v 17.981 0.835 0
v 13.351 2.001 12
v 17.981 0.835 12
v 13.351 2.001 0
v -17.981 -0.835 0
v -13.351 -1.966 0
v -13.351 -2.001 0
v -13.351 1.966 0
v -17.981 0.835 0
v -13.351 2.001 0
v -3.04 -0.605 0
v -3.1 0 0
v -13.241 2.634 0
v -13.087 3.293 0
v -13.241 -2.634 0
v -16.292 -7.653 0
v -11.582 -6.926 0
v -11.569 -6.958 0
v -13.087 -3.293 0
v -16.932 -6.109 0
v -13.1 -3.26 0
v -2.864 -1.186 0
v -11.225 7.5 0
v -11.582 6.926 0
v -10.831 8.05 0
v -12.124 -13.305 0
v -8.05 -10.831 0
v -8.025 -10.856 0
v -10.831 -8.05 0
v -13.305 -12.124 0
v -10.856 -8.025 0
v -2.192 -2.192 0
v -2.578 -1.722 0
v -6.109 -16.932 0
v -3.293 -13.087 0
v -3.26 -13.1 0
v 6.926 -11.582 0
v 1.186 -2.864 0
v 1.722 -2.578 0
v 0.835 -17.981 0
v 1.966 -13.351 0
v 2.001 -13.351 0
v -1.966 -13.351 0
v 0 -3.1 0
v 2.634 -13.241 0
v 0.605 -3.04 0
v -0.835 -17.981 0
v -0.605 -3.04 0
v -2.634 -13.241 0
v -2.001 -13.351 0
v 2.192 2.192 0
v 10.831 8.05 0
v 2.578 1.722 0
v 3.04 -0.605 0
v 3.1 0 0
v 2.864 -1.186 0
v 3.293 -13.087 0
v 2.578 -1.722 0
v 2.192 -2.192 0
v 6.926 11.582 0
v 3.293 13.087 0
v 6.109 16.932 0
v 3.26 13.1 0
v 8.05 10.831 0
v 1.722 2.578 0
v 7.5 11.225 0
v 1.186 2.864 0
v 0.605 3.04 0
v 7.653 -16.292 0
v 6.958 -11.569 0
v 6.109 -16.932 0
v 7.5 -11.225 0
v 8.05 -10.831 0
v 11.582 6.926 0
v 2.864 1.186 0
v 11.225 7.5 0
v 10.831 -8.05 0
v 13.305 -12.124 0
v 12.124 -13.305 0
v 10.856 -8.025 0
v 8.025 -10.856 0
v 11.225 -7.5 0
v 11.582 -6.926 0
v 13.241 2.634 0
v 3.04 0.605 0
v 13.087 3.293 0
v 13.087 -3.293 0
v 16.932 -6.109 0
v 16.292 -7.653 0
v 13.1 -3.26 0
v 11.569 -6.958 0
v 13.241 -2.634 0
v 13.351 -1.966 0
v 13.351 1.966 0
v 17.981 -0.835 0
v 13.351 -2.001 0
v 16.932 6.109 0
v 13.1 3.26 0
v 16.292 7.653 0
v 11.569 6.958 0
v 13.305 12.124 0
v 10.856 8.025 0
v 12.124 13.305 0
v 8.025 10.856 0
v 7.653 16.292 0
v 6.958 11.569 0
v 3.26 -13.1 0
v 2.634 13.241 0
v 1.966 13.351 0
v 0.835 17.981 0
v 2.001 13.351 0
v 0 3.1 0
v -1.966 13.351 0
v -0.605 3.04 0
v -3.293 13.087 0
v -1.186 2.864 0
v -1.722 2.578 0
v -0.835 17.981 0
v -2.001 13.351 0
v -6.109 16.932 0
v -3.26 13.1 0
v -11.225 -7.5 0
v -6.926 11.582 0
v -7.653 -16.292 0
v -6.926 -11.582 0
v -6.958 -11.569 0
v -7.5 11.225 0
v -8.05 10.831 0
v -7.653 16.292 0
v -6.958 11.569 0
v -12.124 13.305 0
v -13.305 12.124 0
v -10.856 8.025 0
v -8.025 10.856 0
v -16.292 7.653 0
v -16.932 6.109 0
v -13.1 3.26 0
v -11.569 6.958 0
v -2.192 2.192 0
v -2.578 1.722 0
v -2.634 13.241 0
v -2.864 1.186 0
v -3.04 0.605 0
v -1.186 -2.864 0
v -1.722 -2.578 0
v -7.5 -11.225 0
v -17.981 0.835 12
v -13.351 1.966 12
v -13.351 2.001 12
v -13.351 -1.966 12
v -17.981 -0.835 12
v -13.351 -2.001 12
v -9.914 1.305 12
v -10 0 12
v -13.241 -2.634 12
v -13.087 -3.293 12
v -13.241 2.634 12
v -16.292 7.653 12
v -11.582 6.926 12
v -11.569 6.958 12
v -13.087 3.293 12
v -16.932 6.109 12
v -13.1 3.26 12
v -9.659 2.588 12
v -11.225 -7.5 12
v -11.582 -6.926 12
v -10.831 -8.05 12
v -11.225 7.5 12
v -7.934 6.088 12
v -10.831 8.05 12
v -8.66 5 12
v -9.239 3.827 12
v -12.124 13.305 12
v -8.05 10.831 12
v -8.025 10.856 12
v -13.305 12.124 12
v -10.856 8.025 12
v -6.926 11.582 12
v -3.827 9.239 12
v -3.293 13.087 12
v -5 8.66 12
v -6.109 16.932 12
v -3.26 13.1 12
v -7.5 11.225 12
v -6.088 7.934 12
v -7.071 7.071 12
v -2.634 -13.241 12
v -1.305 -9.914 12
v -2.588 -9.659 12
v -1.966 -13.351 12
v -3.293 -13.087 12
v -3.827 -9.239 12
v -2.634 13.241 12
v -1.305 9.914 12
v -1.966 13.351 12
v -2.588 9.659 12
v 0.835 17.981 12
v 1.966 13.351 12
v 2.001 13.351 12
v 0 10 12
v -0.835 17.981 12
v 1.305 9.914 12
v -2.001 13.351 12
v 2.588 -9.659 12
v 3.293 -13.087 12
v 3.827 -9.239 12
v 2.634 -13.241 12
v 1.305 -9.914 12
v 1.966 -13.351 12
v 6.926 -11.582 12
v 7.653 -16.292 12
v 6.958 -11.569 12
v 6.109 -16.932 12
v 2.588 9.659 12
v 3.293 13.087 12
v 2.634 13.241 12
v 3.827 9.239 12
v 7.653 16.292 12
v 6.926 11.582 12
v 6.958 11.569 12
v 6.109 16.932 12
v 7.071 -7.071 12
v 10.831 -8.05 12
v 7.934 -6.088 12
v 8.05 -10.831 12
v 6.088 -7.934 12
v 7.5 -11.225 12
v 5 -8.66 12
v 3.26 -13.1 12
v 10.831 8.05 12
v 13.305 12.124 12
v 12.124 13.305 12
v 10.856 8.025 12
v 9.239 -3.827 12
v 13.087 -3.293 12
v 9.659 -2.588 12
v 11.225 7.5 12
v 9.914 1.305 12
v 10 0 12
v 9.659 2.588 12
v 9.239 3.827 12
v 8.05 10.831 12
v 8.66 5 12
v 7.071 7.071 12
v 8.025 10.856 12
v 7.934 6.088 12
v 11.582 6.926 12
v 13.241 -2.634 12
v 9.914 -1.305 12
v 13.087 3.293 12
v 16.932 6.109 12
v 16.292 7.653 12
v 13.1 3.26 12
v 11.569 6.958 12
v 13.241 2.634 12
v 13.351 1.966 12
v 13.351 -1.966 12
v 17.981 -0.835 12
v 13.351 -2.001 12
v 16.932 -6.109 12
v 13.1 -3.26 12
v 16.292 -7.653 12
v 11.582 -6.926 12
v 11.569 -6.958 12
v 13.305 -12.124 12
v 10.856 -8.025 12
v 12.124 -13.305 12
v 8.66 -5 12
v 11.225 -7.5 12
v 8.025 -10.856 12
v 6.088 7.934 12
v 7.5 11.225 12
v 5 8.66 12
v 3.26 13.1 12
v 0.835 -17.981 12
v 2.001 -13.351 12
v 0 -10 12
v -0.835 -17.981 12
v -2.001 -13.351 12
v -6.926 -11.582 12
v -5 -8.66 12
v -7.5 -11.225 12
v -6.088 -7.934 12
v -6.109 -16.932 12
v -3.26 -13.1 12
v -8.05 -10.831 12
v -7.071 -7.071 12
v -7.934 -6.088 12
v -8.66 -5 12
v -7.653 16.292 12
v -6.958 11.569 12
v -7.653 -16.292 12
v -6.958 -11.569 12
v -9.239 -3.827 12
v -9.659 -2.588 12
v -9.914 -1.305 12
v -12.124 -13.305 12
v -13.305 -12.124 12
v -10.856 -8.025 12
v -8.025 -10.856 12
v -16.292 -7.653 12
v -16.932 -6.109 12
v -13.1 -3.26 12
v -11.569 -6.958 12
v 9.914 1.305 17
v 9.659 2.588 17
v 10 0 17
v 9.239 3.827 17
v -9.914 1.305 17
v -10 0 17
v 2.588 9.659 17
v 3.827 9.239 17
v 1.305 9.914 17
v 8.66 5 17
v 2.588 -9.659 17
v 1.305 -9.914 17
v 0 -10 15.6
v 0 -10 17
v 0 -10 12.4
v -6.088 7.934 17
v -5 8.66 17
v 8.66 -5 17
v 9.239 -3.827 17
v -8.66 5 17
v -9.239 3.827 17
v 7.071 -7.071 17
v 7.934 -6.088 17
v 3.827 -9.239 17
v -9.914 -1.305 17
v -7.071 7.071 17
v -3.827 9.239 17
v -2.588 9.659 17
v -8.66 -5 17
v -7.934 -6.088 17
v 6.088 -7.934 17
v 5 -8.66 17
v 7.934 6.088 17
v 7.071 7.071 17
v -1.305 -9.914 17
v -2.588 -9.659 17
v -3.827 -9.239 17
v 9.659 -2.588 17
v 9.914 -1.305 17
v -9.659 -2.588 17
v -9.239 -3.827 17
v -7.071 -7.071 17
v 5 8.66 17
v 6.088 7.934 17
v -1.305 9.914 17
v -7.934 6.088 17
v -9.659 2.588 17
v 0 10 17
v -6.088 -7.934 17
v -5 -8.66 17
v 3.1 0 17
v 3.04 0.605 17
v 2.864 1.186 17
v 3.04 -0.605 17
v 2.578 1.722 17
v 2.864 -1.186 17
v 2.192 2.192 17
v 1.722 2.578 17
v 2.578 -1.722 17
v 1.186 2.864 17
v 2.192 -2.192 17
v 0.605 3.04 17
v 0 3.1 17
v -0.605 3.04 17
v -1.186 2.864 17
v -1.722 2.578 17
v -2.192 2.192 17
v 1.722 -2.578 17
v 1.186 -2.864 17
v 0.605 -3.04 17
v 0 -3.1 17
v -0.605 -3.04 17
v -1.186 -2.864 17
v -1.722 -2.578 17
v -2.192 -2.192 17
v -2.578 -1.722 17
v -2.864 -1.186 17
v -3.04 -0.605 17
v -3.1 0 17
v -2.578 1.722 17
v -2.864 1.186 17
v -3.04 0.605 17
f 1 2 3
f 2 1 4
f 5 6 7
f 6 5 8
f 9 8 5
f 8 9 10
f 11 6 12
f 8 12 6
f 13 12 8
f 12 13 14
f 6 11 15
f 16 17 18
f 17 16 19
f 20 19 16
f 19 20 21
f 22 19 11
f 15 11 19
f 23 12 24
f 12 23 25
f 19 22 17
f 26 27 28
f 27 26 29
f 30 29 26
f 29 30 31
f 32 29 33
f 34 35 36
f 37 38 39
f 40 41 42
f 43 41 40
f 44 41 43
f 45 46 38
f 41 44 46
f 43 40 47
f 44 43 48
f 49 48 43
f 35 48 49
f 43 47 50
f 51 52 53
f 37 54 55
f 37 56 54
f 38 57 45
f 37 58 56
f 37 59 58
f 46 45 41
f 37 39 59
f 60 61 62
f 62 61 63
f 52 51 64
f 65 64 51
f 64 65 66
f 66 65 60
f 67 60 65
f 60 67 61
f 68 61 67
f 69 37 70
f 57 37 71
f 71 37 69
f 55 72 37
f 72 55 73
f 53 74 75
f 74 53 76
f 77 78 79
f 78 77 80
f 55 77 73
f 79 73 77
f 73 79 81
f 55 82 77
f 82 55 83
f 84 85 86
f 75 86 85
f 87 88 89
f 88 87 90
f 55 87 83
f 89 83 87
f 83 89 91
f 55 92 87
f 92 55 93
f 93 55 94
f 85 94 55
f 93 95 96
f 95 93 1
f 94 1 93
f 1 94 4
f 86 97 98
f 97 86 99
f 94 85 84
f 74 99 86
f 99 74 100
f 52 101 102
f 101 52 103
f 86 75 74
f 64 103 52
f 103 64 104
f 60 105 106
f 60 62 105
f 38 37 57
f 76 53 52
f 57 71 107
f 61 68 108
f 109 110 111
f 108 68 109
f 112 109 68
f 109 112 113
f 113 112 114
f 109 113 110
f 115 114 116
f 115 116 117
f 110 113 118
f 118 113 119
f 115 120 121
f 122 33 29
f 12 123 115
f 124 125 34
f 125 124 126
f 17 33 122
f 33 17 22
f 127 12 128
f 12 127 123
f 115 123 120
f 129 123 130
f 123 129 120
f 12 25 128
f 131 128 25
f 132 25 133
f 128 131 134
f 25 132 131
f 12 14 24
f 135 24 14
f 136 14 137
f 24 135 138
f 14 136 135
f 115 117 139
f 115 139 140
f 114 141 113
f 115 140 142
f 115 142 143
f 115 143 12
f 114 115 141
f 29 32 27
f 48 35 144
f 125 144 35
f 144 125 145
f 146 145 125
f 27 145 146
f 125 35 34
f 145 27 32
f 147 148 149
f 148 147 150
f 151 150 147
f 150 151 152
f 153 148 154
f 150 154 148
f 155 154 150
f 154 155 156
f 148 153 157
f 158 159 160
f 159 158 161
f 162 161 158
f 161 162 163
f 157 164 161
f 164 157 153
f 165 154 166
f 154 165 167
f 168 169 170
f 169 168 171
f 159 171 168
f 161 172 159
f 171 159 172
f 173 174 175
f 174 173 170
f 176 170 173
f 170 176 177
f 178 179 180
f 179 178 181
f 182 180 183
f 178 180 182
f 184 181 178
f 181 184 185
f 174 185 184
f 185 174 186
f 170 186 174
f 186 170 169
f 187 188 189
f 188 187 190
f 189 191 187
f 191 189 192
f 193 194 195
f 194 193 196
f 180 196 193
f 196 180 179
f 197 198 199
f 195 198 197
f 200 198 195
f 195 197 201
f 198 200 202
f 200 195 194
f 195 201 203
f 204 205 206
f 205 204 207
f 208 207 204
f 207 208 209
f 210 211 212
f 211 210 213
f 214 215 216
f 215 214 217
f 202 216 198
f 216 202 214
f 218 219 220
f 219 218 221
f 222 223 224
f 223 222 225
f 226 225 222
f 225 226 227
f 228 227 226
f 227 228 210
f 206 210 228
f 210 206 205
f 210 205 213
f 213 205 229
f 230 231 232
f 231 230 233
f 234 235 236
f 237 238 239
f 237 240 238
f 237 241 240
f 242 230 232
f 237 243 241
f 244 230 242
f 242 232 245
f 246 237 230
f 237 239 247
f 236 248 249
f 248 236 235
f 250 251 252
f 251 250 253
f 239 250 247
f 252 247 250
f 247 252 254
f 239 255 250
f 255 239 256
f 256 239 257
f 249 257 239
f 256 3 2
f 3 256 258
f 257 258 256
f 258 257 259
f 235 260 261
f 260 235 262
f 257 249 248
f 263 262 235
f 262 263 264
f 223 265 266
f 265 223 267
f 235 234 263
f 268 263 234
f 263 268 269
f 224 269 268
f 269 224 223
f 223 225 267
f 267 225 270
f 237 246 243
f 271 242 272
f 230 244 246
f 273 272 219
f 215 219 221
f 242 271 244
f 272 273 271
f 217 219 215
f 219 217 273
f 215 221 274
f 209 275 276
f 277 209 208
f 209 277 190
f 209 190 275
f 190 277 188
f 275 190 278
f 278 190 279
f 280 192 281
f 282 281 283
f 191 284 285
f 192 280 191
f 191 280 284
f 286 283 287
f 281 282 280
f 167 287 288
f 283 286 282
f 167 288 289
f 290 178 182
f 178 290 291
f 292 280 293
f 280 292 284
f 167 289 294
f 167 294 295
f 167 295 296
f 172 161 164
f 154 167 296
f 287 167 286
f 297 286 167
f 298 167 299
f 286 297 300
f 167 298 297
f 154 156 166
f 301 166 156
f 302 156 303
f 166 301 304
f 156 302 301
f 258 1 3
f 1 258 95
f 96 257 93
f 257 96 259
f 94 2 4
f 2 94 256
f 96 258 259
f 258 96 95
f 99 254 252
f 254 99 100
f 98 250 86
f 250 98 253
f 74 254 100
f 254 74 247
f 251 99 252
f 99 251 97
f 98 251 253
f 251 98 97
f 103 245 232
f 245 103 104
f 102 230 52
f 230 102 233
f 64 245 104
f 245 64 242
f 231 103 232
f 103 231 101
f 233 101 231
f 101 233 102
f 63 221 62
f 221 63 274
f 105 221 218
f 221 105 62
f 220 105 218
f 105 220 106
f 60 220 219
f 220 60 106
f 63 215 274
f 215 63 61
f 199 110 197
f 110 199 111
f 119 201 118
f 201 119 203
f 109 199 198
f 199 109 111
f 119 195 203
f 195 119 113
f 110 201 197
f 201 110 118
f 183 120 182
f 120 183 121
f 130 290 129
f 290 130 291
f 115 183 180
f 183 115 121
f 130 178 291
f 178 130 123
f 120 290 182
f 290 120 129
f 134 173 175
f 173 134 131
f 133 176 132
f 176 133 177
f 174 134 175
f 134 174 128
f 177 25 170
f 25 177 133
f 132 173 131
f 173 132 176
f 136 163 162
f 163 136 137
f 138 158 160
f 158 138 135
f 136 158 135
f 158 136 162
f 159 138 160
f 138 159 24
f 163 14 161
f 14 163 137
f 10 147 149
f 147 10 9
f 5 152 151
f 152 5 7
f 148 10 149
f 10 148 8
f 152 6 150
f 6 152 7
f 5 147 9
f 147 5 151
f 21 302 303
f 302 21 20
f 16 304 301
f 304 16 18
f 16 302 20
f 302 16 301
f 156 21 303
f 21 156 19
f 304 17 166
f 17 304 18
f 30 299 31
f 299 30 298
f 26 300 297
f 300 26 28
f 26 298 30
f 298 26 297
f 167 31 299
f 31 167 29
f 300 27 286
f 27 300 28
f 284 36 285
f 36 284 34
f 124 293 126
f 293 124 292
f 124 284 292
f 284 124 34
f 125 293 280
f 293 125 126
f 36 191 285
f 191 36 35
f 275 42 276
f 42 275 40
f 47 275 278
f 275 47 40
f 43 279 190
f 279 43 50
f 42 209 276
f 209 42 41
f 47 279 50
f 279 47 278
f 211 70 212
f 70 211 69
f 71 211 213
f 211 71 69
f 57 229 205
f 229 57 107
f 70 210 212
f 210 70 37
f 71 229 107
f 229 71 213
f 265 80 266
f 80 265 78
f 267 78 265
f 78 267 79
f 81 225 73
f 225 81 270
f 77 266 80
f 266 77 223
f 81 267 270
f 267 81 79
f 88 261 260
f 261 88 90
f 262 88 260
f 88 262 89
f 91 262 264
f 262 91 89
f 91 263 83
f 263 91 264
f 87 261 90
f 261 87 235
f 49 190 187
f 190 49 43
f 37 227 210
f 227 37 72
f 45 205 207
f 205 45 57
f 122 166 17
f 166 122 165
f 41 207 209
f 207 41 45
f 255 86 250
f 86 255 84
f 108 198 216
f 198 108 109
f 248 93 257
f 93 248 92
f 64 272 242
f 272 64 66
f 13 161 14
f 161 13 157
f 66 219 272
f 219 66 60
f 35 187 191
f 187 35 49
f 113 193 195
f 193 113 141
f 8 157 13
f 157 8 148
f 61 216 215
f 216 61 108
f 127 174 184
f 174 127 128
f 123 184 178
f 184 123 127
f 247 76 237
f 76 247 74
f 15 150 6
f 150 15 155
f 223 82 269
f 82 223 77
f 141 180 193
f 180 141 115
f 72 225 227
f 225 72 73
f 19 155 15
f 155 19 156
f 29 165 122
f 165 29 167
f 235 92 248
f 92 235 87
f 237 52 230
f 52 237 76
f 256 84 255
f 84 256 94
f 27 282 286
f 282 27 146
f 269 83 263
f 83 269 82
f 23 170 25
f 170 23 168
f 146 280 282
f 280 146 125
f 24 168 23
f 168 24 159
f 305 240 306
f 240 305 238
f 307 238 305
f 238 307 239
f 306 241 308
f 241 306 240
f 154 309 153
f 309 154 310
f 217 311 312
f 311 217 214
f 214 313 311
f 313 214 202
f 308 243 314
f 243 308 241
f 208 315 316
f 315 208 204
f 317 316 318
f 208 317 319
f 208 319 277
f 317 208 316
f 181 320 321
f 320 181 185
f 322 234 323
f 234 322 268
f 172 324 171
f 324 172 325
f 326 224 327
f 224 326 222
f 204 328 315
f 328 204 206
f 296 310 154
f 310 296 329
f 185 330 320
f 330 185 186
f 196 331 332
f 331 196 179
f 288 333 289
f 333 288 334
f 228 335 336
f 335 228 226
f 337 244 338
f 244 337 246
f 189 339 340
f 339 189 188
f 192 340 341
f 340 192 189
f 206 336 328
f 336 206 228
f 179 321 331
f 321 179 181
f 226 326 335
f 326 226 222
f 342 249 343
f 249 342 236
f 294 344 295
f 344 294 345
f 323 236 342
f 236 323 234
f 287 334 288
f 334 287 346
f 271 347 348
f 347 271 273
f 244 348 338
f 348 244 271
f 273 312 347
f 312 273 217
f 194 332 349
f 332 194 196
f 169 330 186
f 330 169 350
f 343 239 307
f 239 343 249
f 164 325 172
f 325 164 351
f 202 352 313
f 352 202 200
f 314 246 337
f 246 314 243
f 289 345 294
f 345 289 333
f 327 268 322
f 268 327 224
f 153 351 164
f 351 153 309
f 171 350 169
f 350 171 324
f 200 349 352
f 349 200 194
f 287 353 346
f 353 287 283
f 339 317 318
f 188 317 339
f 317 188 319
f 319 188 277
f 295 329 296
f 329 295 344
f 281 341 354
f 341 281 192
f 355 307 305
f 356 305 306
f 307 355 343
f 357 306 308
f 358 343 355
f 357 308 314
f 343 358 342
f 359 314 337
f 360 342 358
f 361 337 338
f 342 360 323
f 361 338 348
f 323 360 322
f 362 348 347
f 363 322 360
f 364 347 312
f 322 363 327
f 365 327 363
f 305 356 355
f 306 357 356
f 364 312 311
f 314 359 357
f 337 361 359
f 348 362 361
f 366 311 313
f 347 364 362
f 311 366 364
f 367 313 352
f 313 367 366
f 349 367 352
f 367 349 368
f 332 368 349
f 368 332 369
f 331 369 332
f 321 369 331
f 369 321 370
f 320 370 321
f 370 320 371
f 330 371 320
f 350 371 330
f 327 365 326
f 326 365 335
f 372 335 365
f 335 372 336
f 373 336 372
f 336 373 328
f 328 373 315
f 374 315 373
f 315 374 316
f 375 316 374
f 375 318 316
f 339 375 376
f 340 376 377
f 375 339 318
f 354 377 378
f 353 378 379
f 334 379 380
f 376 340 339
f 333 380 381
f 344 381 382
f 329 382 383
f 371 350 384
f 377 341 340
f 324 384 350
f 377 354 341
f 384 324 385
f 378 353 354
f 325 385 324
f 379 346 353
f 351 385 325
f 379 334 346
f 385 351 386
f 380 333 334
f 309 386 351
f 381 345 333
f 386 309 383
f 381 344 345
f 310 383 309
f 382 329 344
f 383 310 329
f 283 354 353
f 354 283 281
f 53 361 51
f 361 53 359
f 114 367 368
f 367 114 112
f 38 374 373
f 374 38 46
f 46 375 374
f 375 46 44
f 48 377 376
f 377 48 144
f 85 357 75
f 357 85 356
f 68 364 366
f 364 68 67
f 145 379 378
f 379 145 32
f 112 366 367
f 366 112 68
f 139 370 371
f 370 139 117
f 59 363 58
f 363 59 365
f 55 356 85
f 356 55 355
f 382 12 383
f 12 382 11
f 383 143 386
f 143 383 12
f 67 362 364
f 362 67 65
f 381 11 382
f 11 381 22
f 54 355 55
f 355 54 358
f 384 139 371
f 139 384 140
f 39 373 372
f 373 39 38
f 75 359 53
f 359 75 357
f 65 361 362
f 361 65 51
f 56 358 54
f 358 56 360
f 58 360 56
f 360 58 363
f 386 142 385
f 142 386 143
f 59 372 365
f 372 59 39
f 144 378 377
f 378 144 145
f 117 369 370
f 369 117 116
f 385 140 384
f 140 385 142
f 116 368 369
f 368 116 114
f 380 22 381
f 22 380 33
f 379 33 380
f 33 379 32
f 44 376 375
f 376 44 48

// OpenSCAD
// file: 00_parameters.scad
// TenderCells DoorCell V1 shared parameters
// Units: millimeters

overall_w = 438;
overall_h = 368;
frame_depth = 56;

clear_w = 242;
clear_h = 312;

rail_thick = 32;
jamb_w = 48;
motor_jamb_w = 78;

// Printability targets
target_bed_xy = 220;
comfortable_part_max = 180;

// Modular frame split dimensions
top_seg_len = overall_w / 3;
bottom_seg_len = overall_w / 3;
left_jamb_seg_h = overall_h / 2;
right_lower_h = 118;
right_motor_h = 156;
right_upper_h = overall_h - right_lower_h - right_motor_h;

// Low-cost electronics envelope used by DoorCell V1.4.
// These dimensions are based on common generic modules, not a custom PCB.
esp32_board = [58, 31, 8];
drv8871_board = [31, 26, 7];
current_sensor_board = [26, 22, 7];
lm2596_board = [44, 22, 14];
inline_fuse_body = [45, 15, 14];
cn3065_board = [44, 24, 8];
electronics_clearance = 1.5;
controller_wall = 3;
controller_box_w = 170;
controller_box_h = 115;
controller_box_d = 46;
controller_lid_insert_offset = 11;
controller_m12_gland_d = 12.8;
controller_m10_gland_d = 10.6;
controller_m8_gland_d = 8.4;
controller_button_d = 16.2;

// Brass heat-set/push-in insert features.
insert_post_d = 8.0;
insert_post_h = 8.0;
insert_pilot_d = 4.6;
insert_pilot_depth = 6.5;
hold_down_screw_clearance = 3.4;

// Motor envelope for common 25GA/JGA25-370 gearmotors with optional encoder.
motor_body_d = 25.0;
motor_body_clearance_d = 27.2;
motor_body_len = 65;
motor_encoder_clearance = 16;
motor_mount_plate = [72, 92, 12];
motor_mount_cradle = [54, 74, 28];

// Optional solar add-on.
solar_panel_w = 145;
solar_panel_h = 145;
solar_panel_t = 4.0;
solar_panel_frame_border = 10;
solar_panel_frame_w = solar_panel_w + 2*solar_panel_frame_border;
solar_panel_frame_h = solar_panel_h + 2*solar_panel_frame_border;
solar_panel_back_depth = 14;
solar_panel_lip_overlap = 3;
solar_ball_d = 22;
solar_ball_socket_clearance = 0.45;
solar_mount_m5 = 5.4;

// Tongue-and-groove frame joints
// Fit target: common FDM printers with PETG/ASA.
// Clearance is per side, so sockets add 2x this value.
tongue_len = 18;
tongue_w = 22;
tongue_z = 10;
tongue_clearance_side = 0.25;
tongue_socket_depth_extra = 0.60;

door_w = 270;
door_h = 326;
door_t = 8;

track_gap = 11;
track_depth = 12;

// Rack-and-pinion drive
// Metric module gear math:
// circular_pitch = PI * module
// pitch_diameter = module * tooth_count
// outside_diameter = module * (tooth_count + 2)
// root_diameter = module * (tooth_count - 2.5)
gear_module = 2.0;
pressure_angle = 20;
gear_backlash = 0.20; // mm removed from rack tooth thickness at pitch line

pinion_teeth = 16;
pinion_pitch_d = gear_module * pinion_teeth;
pinion_pitch_radius = pinion_pitch_d / 2;
pinion_outer_d = gear_module * (pinion_teeth + 2);
pinion_outer_radius = pinion_outer_d / 2;
pinion_root_d = gear_module * (pinion_teeth - 2.5);
pinion_root_radius = pinion_root_d / 2;
pinion_thick = 12;
shaft_d = 6.2;

rack_tooth_count = 15;
rack_circular_pitch = 3.141592653589793 * gear_module;
rack_len = rack_circular_pitch * rack_tooth_count;
rack_w = 18;
rack_t = 6;
rack_addendum = gear_module;
rack_dedendum = 1.25 * gear_module;
rack_tooth_h = rack_addendum + rack_dedendum;
rack_pitch_line_z = rack_dedendum;
rack_tooth_pitch_thickness = rack_circular_pitch / 2 - gear_backlash;
rack_tooth_top_w = rack_tooth_pitch_thickness - 2 * rack_addendum * tan(pressure_angle);
rack_tooth_root_w = rack_tooth_pitch_thickness + 2 * rack_dedendum * tan(pressure_angle);

screw_m3 = 3.4;
screw_m4 = 4.5;
insert_m3 = 4.6;

eps = 0.01;

module rounded_box(size=[10,10,10], r=2) {
  hull() {
    translate([r,r,0]) cylinder(h=size[2], r=r, $fn=24);
    translate([size[0]-r,r,0]) cylinder(h=size[2], r=r, $fn=24);
    translate([r,size[1]-r,0]) cylinder(h=size[2], r=r, $fn=24);
    translate([size[0]-r,size[1]-r,0]) cylinder(h=size[2], r=r, $fn=24);
  }
}

module m3_clearance_hole(h=20) {
  cylinder(h=h, d=screw_m3, $fn=24);
}

module m4_clearance_hole(h=20) {
  cylinder(h=h, d=screw_m4, $fn=24);
}

module heat_insert_hole(h=6) {
  cylinder(h=h, d=insert_m3, $fn=24);
}

module heat_insert_post(h=insert_post_h, d=insert_post_d) {
  difference() {
    cylinder(h=h, d=d, $fn=32);
    translate([0,0,h-insert_pilot_depth+eps])
      cylinder(h=insert_pilot_depth+eps, d=insert_pilot_d, $fn=24);
  }
}

module m3_hold_down_slot(length=10, h=4) {
  hull() {
    translate([-length/2,0,0]) cylinder(h=h, d=hold_down_screw_clearance, $fn=20);
    translate([ length/2,0,0]) cylinder(h=h, d=hold_down_screw_clearance, $fn=20);
  }
}

module rail_channel(length=100) {
  cube([length, track_gap, track_depth]);
}

module frame_tongue_x() {
  rounded_box([tongue_len, tongue_w, tongue_z], r=1.5);
}

module frame_socket_x() {
  cube([
    tongue_len + tongue_socket_depth_extra,
    tongue_w + 2*tongue_clearance_side,
    tongue_z + 2*tongue_clearance_side
  ]);
}

module frame_tongue_y() {
  rounded_box([tongue_w, tongue_len, tongue_z], r=1.5);
}

module frame_socket_y() {
  cube([
    tongue_w + 2*tongue_clearance_side,
    tongue_len + tongue_socket_depth_extra,
    tongue_z + 2*tongue_clearance_side
  ]);
}

module rack_teeth(len=rack_len) {
  teeth = floor(len / rack_circular_pitch);
  for (i=[0:teeth-1]) {
    center = i*rack_circular_pitch + rack_circular_pitch/2;
    translate([0, 0, rack_t-0.20])
      linear_extrude(height=rack_w)
        polygon(points=[
          [center - rack_tooth_root_w/2, 0],
          [center + rack_tooth_root_w/2, 0],
          [center + rack_tooth_top_w/2, rack_tooth_h],
          [center - rack_tooth_top_w/2, rack_tooth_h]
        ]);
  }
}

function polar_point(r, a) = [r * cos(a), r * sin(a)];
// main file
include <00_parameters.scad>

// Module-correct printable prototype pinion.
// Module: 2.0
// Teeth: 16
// Pressure angle: 20 degrees
// Pitch diameter: 32 mm
// Outside diameter: 36 mm
// Root diameter: 27 mm
//
// This is an FDM-friendly generated approximation using module-correct pitch,
// OD, root diameter, and tooth count. For a production kit, prefer a molded,
// machined, or fully involute-generated M2 pinion.

module tooth(angle) {
  pitch_half_angle = 90 / pinion_teeth - (gear_backlash / (2 * pinion_pitch_radius)) * 180 / 3.141592653589793;
  outer_half_angle = pitch_half_angle - (rack_addendum / pinion_pitch_radius) * tan(pressure_angle) * 180 / 3.141592653589793;
  root_half_angle = pitch_half_angle + (rack_dedendum / pinion_pitch_radius) * tan(pressure_angle) * 180 / 3.141592653589793;

  rotate([0,0,angle])
    linear_extrude(height=pinion_thick)
      polygon(points=[
        polar_point(pinion_root_radius, -root_half_angle),
        polar_point(pinion_outer_radius, -outer_half_angle),
        polar_point(pinion_outer_radius,  outer_half_angle),
        polar_point(pinion_root_radius,  root_half_angle)
      ]);
}

difference() {
  union() {
    cylinder(h=pinion_thick, r=pinion_root_radius, $fn=96);
    for (i=[0:pinion_teeth-1]) tooth(360/pinion_teeth*i);
    translate([0,0,pinion_thick])
      cylinder(h=5, r=10, $fn=48);
  }

  translate([0,0,-eps]) cylinder(h=pinion_thick+8, d=shaft_d, $fn=32);

  // M3 set screw hole
  translate([0, -10, pinion_thick+2])
    rotate([90,0,0]) cylinder(h=20, d=3.2, $fn=24);
}
